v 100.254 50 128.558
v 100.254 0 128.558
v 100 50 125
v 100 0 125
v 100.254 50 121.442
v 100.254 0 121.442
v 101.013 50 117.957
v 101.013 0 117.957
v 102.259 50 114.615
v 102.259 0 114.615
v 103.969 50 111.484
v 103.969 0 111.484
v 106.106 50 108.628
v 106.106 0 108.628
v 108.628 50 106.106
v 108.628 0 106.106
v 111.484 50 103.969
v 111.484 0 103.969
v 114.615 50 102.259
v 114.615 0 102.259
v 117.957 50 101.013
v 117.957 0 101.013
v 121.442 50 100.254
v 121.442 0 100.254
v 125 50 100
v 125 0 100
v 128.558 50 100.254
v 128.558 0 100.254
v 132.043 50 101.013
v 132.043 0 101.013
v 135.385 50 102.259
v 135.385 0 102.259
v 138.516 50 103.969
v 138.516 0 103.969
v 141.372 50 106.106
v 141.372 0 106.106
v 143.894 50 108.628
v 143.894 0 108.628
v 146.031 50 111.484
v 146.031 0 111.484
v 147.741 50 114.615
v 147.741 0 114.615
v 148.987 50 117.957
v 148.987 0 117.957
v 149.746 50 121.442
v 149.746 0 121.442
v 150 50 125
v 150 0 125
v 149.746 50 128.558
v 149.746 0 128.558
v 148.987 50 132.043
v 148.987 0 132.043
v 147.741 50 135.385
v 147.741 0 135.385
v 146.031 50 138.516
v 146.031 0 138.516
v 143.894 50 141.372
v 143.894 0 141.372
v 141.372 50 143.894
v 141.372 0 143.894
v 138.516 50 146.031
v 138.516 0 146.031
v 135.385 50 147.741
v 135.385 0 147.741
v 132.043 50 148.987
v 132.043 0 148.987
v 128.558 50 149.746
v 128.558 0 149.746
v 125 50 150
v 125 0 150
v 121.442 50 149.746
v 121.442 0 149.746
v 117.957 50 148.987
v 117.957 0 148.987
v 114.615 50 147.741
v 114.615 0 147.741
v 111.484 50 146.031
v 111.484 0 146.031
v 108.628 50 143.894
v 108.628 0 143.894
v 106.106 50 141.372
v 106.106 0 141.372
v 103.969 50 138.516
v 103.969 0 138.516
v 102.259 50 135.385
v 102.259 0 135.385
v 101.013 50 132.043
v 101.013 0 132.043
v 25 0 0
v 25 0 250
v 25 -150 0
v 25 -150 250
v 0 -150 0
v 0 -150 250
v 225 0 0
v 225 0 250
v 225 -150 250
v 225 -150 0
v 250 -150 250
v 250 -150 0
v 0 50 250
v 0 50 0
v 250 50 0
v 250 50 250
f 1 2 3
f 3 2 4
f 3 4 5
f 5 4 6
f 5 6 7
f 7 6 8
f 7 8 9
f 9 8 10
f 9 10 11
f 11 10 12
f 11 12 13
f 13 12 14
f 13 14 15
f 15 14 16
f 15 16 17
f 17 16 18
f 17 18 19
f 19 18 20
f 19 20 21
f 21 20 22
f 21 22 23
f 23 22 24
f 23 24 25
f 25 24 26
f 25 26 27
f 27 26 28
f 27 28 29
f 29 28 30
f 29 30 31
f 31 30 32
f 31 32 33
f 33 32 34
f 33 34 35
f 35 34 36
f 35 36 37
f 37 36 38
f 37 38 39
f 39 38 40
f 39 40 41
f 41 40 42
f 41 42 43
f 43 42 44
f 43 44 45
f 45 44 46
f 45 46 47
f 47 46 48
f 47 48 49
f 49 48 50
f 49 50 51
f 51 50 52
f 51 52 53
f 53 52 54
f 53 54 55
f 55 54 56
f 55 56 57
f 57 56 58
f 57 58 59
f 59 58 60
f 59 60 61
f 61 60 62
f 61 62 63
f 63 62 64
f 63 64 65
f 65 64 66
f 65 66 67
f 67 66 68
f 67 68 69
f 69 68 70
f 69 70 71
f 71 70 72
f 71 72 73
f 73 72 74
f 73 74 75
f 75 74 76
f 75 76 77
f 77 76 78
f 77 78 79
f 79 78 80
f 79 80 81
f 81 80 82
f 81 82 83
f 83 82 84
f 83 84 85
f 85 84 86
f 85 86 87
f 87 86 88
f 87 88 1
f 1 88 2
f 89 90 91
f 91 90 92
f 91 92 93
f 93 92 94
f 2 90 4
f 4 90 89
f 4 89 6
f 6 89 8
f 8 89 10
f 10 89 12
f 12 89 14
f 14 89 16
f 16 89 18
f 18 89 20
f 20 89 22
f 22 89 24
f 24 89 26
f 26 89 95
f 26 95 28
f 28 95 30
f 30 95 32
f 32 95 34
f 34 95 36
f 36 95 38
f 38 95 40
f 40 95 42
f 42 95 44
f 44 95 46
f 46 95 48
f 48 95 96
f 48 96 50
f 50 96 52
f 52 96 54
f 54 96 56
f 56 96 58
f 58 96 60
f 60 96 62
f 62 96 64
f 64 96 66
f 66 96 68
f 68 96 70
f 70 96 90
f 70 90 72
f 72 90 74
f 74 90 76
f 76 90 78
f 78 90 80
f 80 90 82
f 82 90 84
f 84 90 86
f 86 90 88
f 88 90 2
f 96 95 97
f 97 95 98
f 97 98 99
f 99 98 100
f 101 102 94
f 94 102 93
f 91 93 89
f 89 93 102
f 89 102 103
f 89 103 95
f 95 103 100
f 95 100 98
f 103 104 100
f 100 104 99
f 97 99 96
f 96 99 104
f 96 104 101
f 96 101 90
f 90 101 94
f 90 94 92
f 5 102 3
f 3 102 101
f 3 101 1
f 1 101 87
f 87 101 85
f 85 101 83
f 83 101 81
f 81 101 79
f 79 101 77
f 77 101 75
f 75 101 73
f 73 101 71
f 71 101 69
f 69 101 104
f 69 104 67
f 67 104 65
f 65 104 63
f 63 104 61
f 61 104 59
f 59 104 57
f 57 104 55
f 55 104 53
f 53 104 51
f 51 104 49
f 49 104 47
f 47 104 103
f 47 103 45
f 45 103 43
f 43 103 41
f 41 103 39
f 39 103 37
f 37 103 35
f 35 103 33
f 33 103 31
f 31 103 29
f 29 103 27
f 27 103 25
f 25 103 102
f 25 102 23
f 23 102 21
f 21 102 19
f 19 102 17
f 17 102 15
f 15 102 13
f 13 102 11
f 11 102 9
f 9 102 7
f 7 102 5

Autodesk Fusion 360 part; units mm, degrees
sketch "Sketch1" plane through (0, 0, 0) normal (0, 1, 0) x (1, 0, 0)
  line L0 (0, 0) -> (100, 0)
  line L1 (100, 0) -> (100, -100)
  line L2 (100, -100) -> (0, -100)
  line L3 (0, -100) -> (0, 0)
  dimension "d1" = 100
  dimension "d2" = 100
extrude "Extrude1" add sketch "Sketch1" along normal blind 20
sketch "Sketch2" plane through (0, 0, 0) normal (0, -1, 0) x (1, 0, 0)
  line L0 (100, 100) -> (0, 100)
  line L1 (0, 100) -> (0, 0)
  line L2 (0, 0) -> (100, 0)
  line L3 (100, 0) -> (100, 100)
  line L4 (10, 100) -> (90, 100)
  line L5 (90, 100) -> (90, 0)
  line L6 (90, 0) -> (10, 0)
  line L7 (10, 0) -> (10, 100)
  dimension "d5" = 10
  dimension "d6" = 80
extrude "Extrude2" add sketch "Sketch2" along normal blind 60 contours L0 L2 L3 L5 | L0 L1 L2 L7
sketch "Sketch3" plane through (0, 0, 0) normal (0, -1, 0) x (1, 0, 0)
  line L0 (10, 100) -> (10, 0)
  line L1 (10, 0) -> (90, 0)
  line L2 (90, 0) -> (90, 100)
  line L3 (90, 100) -> (10, 100)
  circle A0 centre (50, 50) radius 10
  dimension "d9" = 20
extrude "Extrude3" cut sketch "Sketch3" against normal blind 20 contours A0
scale "Scale1" factor 2.5 about (0, 0, 0) bodies 1
